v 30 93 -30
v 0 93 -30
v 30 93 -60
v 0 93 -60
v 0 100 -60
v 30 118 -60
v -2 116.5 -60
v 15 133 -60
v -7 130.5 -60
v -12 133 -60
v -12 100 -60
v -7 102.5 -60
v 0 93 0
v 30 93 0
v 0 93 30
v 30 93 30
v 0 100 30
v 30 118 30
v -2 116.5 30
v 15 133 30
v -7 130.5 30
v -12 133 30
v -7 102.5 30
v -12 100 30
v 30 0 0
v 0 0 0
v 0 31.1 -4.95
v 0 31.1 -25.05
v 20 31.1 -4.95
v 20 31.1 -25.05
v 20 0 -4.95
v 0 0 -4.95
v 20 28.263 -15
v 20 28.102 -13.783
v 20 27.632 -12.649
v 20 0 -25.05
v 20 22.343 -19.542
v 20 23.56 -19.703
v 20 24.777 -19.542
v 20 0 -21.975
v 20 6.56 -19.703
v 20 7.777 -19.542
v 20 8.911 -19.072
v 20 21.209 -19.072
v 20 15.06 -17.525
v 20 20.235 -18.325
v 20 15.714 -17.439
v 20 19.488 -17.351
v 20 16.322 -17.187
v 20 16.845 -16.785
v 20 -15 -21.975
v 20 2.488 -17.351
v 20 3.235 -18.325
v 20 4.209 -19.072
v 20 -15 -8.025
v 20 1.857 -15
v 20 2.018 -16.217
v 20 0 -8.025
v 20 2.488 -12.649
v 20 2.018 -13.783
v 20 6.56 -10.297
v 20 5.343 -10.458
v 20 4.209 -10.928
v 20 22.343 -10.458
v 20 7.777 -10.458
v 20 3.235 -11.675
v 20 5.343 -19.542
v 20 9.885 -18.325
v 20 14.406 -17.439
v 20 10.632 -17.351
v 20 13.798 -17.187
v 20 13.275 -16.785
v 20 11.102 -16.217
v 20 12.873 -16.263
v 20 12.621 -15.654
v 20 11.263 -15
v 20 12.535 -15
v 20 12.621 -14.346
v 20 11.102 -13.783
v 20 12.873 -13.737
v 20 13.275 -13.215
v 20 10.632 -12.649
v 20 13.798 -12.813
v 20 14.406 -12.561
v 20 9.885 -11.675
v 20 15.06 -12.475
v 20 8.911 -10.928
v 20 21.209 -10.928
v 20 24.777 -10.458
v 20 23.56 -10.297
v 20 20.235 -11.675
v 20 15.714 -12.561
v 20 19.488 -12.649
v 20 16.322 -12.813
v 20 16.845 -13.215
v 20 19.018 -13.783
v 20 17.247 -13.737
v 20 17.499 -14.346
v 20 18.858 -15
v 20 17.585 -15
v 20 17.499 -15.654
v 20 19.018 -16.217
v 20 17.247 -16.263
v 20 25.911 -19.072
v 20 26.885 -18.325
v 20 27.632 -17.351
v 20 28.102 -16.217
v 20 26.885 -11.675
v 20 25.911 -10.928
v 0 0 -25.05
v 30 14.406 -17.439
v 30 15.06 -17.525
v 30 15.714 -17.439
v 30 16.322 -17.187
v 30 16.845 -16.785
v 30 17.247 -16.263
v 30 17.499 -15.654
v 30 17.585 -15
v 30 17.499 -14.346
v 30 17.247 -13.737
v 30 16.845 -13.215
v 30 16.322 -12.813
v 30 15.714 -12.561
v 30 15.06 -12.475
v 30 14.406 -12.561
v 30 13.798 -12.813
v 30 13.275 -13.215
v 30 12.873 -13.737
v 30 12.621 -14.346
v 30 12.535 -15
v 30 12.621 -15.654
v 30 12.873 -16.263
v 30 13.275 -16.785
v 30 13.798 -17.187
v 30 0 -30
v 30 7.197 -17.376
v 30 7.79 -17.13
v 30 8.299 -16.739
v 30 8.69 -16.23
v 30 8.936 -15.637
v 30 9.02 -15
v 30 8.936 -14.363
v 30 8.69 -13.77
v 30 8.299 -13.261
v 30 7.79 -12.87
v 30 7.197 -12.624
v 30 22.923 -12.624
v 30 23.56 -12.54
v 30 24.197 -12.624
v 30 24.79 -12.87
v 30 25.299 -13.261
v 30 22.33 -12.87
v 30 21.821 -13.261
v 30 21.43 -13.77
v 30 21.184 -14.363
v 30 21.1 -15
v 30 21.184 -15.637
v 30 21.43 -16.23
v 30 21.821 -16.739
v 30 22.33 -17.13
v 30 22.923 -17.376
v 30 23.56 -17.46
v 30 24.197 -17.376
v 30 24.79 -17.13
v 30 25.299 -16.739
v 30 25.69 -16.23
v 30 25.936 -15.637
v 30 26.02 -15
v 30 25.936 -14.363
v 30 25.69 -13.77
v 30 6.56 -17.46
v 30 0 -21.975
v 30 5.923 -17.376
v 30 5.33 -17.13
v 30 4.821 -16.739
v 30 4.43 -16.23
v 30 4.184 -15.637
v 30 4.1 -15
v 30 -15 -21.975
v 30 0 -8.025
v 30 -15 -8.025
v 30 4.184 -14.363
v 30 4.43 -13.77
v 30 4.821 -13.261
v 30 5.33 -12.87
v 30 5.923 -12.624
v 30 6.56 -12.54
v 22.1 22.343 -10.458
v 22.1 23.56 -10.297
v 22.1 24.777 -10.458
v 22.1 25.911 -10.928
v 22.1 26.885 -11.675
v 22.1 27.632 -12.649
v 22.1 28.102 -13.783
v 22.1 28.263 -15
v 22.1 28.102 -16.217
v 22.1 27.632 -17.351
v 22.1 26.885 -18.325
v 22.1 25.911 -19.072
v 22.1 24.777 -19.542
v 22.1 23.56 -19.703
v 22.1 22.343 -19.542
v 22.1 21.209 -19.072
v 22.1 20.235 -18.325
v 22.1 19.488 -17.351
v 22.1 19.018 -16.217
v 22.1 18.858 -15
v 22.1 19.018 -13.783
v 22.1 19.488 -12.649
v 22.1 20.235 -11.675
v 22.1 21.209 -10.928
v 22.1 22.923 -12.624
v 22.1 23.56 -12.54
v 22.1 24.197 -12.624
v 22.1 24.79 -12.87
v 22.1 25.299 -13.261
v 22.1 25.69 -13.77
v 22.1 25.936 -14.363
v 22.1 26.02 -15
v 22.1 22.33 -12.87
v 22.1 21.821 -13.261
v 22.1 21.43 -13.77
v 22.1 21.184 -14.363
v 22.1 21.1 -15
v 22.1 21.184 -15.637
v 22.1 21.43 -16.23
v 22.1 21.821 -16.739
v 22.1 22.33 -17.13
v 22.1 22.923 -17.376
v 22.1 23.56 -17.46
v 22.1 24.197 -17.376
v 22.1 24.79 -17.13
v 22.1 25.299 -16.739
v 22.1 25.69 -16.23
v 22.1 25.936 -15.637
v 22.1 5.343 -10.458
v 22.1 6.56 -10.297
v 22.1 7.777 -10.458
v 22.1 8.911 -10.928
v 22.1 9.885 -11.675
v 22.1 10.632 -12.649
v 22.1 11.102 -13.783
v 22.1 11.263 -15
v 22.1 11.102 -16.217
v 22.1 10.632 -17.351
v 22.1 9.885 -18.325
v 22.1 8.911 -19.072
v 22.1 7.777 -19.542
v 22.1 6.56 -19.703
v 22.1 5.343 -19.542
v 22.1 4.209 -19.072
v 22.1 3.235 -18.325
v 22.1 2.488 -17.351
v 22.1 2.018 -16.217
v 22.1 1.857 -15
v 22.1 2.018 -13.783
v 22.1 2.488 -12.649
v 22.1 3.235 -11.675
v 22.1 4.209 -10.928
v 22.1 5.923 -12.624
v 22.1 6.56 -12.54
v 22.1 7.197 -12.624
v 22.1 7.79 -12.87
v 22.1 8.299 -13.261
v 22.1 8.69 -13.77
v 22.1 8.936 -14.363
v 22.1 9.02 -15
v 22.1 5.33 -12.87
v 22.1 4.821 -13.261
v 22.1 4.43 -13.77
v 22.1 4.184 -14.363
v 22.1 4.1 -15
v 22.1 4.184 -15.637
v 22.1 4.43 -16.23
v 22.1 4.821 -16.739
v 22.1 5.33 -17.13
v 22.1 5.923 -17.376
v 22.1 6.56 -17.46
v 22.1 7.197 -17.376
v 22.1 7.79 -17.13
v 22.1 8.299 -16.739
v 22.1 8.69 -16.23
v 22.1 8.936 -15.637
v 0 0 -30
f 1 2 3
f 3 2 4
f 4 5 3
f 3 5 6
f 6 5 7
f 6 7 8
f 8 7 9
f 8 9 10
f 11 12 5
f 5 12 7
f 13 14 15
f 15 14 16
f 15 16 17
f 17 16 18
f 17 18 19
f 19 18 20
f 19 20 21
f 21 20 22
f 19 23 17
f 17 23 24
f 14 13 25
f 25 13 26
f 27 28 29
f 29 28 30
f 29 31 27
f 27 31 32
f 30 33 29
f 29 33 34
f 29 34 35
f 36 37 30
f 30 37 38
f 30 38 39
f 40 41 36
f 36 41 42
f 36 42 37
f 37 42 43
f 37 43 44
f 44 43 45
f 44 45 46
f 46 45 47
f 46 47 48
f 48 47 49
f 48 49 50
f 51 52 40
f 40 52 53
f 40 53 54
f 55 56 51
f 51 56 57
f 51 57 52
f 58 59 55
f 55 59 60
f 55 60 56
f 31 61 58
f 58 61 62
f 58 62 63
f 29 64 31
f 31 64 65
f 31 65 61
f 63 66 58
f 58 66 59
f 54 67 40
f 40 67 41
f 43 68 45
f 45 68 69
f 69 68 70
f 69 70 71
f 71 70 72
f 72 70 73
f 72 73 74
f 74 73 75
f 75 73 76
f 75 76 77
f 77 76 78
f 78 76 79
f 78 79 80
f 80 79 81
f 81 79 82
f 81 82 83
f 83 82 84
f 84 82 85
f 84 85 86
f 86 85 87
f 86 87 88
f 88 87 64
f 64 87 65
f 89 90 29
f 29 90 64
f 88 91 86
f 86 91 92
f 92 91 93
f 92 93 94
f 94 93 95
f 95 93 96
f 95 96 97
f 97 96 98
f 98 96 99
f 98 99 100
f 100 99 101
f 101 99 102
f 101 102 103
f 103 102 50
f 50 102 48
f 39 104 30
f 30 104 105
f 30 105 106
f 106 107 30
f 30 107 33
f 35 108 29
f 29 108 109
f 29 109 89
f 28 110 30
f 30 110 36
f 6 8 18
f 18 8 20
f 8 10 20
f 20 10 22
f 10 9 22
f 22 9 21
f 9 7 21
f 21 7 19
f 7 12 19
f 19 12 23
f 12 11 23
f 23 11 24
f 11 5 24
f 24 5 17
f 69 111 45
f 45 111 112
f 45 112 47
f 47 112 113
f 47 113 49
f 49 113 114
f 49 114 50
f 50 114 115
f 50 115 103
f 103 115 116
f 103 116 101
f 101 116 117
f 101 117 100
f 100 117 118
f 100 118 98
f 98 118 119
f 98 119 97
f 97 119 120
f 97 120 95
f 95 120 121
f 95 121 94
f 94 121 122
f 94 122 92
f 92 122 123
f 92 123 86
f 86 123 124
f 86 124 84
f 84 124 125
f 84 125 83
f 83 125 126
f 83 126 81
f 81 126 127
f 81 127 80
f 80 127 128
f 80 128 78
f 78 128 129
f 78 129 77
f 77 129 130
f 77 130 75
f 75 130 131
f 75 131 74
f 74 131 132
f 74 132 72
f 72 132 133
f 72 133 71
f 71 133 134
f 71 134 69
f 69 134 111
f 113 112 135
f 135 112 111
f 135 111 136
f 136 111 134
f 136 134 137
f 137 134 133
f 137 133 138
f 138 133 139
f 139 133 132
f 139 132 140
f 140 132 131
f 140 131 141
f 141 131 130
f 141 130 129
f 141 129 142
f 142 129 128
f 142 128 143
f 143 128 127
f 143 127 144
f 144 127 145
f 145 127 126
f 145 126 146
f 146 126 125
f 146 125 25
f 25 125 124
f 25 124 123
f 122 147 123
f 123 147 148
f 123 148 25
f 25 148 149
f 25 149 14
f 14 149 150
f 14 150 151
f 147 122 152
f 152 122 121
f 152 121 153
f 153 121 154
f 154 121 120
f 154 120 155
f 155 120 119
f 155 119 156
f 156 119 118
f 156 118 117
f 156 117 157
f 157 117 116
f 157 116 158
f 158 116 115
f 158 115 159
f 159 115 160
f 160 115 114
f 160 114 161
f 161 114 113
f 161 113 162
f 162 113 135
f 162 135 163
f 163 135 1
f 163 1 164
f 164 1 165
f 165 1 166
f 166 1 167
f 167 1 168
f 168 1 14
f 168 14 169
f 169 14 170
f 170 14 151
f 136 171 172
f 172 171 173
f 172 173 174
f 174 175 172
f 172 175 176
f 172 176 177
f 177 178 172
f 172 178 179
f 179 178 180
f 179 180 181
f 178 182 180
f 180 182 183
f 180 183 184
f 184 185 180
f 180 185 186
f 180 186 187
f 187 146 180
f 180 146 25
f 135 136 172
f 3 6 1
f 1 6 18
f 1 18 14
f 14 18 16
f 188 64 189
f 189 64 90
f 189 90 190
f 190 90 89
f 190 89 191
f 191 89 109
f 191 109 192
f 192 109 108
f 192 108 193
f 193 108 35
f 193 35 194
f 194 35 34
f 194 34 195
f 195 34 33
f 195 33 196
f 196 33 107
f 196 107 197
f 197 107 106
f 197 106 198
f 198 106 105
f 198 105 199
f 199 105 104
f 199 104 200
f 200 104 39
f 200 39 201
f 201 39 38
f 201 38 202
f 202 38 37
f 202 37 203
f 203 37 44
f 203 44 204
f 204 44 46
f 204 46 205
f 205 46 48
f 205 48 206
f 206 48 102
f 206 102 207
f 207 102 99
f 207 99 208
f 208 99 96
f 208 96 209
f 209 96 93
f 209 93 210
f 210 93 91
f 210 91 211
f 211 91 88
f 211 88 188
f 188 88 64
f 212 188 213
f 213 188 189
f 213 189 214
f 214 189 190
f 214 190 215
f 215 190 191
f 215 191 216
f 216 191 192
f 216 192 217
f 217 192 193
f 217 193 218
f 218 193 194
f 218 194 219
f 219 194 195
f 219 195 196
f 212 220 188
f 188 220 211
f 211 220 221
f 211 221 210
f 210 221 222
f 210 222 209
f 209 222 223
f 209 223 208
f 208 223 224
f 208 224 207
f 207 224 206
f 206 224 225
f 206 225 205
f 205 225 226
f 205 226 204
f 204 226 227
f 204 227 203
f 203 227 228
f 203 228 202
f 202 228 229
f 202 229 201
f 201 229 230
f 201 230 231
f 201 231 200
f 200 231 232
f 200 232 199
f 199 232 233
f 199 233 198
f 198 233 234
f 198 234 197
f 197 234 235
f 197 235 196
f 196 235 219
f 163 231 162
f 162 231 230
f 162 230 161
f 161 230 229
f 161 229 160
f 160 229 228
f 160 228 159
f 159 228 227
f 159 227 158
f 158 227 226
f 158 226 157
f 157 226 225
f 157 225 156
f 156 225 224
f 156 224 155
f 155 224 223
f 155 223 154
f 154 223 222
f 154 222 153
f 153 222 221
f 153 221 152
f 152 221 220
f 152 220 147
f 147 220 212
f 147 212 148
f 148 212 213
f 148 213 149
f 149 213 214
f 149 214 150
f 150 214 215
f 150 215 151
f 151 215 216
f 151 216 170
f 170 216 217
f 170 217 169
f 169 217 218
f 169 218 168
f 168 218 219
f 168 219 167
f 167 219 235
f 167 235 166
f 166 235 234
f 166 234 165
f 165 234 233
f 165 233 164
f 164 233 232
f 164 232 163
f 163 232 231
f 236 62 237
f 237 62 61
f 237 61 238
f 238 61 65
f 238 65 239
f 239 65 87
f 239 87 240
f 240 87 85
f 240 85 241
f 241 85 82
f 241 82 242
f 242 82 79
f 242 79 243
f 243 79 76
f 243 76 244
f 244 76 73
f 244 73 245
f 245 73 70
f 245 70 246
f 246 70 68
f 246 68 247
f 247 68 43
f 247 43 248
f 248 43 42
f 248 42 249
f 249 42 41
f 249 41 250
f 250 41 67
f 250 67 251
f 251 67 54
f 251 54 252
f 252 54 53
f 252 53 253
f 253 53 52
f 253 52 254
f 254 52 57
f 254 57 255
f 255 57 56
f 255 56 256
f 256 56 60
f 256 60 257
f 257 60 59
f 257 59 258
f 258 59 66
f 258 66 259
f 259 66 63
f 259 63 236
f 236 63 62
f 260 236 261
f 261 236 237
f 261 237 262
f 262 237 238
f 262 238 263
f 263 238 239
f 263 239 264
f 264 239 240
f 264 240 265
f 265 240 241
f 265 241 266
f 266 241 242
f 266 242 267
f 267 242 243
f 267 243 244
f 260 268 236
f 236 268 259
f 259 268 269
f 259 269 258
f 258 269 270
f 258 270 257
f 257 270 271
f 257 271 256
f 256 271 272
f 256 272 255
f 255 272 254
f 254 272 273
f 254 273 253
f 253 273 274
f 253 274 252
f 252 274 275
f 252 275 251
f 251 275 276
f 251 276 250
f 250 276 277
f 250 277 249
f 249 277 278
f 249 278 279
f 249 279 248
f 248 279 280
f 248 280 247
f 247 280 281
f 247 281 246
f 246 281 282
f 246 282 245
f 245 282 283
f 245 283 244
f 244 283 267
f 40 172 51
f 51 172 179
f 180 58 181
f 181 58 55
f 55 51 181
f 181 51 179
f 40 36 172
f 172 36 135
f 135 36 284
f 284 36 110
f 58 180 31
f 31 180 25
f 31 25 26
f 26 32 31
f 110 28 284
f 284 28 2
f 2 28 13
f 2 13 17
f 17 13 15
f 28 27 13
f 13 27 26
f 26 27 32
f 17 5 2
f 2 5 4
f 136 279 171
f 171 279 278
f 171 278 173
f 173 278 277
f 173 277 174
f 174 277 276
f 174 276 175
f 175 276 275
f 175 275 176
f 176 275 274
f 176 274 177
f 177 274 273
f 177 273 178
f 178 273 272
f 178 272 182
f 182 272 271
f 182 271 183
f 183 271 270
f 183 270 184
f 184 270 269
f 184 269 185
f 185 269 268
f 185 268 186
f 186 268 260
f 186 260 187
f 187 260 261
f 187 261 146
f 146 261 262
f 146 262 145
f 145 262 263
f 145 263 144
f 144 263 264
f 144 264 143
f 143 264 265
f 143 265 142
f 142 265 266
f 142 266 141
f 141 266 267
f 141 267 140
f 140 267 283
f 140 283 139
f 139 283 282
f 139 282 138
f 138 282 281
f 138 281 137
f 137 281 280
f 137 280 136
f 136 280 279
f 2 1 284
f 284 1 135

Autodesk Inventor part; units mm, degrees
ref_plane "YZ Plane" through (0, 0, 0) normal (1, 0, 0) x (0, 1, 0)
ref_plane "XZ Plane" through (0, 0, 0) normal (0, 1, 0) x (-1, 0, 0)
sketch "Sketch1" plane through (0, 0, 0) normal (0, 0, 1) x (1, 0, 0)
  line L0 (0, 0) -> (25, 0)
  line L1 (25, 0) -> (25, 40)
  line L2 (25, 40) -> (0, 40)
  line L3 (0, 40) -> (0, 0)
  dimension "d1" = 25
  dimension "d2" = 40
  dimension "d3" = 25
extrude "Extrusion1" add sketch "Sketch1" against normal blind 30
sketch "Sketch2" plane through (25, 0, 0) normal (1, 0, 0) x (0, 0, -1)
  line L0 (0, 0) -> (30, 0) projected
  circle A0 centre (15, 6.56) radius 2.46
extrude "Extrusion2" cut sketch "Sketch2" against normal blind 30
sketch "Sketch3" plane through (0, 0, 0) normal (-1, 0, 0) x (0, 0, 1)
  line L0 (0, 0) -> (-30, 0) projected
  line L1 (-25.05, 0) -> (-4.95, 0)
  line L2 (-4.95, 0) -> (-4.95, 33.12)
  line L3 (-4.95, 33.12) -> (-25.05, 33.12)
  line L4 (-25.05, 33.12) -> (-25.05, 0)
  dimension "d11" = 20.1
extrude "Extrusion3" cut sketch "Sketch3" against normal blind 20
sketch "Sketch4" plane through (0, 0, 0) normal (0, -1, 0) x (1, 0, 0)
  line L0 (20, -4.95) -> (20, -25.05) projected
  line L1 (20, -15) -> (25, -15)
  line L2 (25, 0) -> (25, -30) projected
  line L3 (20, -8.025) -> (25, -8.025)
  line L4 (25, -8.025) -> (25, -21.975)
  line L5 (25, -21.975) -> (20, -21.975)
  line L6 (20, -21.975) -> (20, -8.025)
  line L7 (20, -8.025) -> (25, -21.975) construction
  line L8 (25, -8.025) -> (20, -21.975) construction
  line L9 (25, -12.54) -> (25, -17.46) projected
  point P0 (0, 0)
  point P1 (22.5, -15)
  dimension "d14" = 13.95
extrude "Extrusion4" add sketch "Sketch4" along normal blind 15
sketch "Sketch5" plane through (20, 0, 0) normal (-1, 0, 0) x (0, 0, 1)
  circle A0 centre (-15, 6.56) radius 2.46 projected
  circle A1 centre (-15, 6.56) radius 4.7025
  circle A2 centre (-15, 6.56) radius 2.46 projected
  circle A3 centre (-15, 6.56) radius 2.46
  point P0 (0, 0)
  dimension "d17" = 9.405
extrude "Extrusion5" cut sketch "Sketch5" against normal blind 2.1
sketch "Sketch6" plane through (25, 0, 0) normal (1, 0, 0) x (0, 0, -1)
  circle A0 centre (15, 6.56) radius 4.7025 projected
  line L0 (15, 6.56) -> (15, 23.56)
  circle A1 centre (15, 23.56) radius 2.46
  point P0 (0, 0)
  dimension "d20" = 17
  dimension "d21" = 4.92
extrude "Extrusion6" cut sketch "Sketch6" against normal blind 10 contours A1
sketch "Sketch7" plane through (20, 0, 0) normal (-1, 0, 0) x (0, 0, 1)
  circle A0 centre (-15, 23.56) radius 2.46 projected
  circle A1 centre (-15, 23.56) radius 4.7025
  point P0 (0, 0)
  dimension "d24" = 9.405
extrude "Extrusion7" cut sketch "Sketch7" against normal blind 2.1
sketch "Sketch9" plane through (25, 0, 0) normal (1, 0, 0) x (0, 0, -1)
  circle A0 centre (15, 6.56) radius 2.46 projected
  circle A1 centre (15, 6.56) radius 2.46
  circle A2 centre (15, 23.56) radius 2.46 projected
  circle A3 centre (15, 23.56) radius 2.46
  line L0 (30, 40) -> (30, 0) projected
  line L1 (30, 0) -> (30, 40)
  line L2 (30, 40) -> (0, 40)
  line L3 (0, 40) -> (0, 0)
  line L4 (0, 0) -> (8.025, 0) projected
  line L5 (21.975, 0) -> (21.975, -15)
  line L6 (21.975, -15) -> (8.025, -15)
  line L7 (8.025, -15) -> (8.025, 0)
  line L8 (0, 0) -> (8.025, 0)
  line L9 (21.975, 0) -> (30, 0)
extrude "Extrusion8" add sketch "Sketch9" along normal blind 5
sketch "Sketch10" plane through (0, 40, 0) normal (0, 1, 0) x (1, 0, 0)
  line L0 (0, 30) -> (30, 30) projected
  line L1 (30, 0) -> (0, 0) projected
  line L2 (0, 30) -> (30, 30)
  line L3 (30, 30) -> (30, 0)
  line L4 (30, 0) -> (0, 0)
  line L5 (0, 0) -> (0, 30)
extrude "Extrusion9" add sketch "Sketch10" along normal blind 30
sketch "Sketch12" plane through (30, 0, 0) normal (1, 0, 0) x (0, 0, -1)
  circle A0 centre (15, 6.56) radius 2.46 projected
  line L0 (15, 6.56) -> (15, 15.06)
  circle A1 centre (15, 15.06) radius 2.525
  point P0 (0, 0)
  dimension "d31" = 8.5
  dimension "d33" = 5.05
extrude "Extrusion10" cut sketch "Sketch12" against normal blind 30 contours A1
sketch "Sketch14" plane through (0, 0, 0) normal (0, 0, 1) x (1, 0, 0)
  line L0 (30, 70) -> (0, 70) projected
  line L1 (0, 70) -> (0, 85)
  line L2 (30, 0) -> (30, 70) projected
  line L3 (30, 118) -> (30, 70)
  line L4 (30, 105) -> (30, 100)
  line L5 (-12, 133) -> (15, 133)
  line L6 (-7, 130.5) -> (-12, 133)
  line L7 (-7, 130.5) -> (-2, 116.5)
  line L8 (-7, 102.5) -> (-12, 100)
  line L9 (-7, 102.5) -> (-2, 116.5)
  line L10 (30, 118) -> (15, 133)
  line L11 (0, 100) -> (-12, 100)
  line L12 (0, 100) -> (0, 85)
  point P0 (0, 0)
  dimension "d79" = 12
extrude "Extrusion12" add sketch "Sketch14" against normal blind 30
sketch "Sketch15" plane through (0, 0, -25.05) normal (-1, 0, 0) x (0, 0, 1)
  line L0 (0, 33.12) -> (20.1, 33.12) projected
  line L1 (20.1, 33.12) -> (20.1, 0) projected
  line L2 (0, 33.12) -> (20.1, 33.12)
  line L3 (20.1, 33.12) -> (20.1, 31.1)
  line L4 (20.1, 31.1) -> (0, 31.1)
  line L5 (0, 31.1) -> (0, 33.12)
  point P0 (25.05, 0)
  dimension "d57" = 2.02
extrude "Extrusion13" add sketch "Sketch15" against normal blind 20
sketch "Sketch22" plane through (0, 0, 0) normal (0, 0, 1) x (1, 0, 0)
  line L0 (0, 100) -> (-12, 100) projected
  line L1 (0, 100) -> (-12, 100)
  line L2 (-12, 100) -> (-7, 102.5) projected
  line L3 (-12, 100) -> (-7, 102.5)
  line L4 (-7, 102.5) -> (-2, 116.5) projected
  line L5 (-7, 102.5) -> (-2, 116.5)
  line L6 (-2, 116.5) -> (-7, 130.5) projected
  line L7 (-2, 116.5) -> (-7, 130.5)
  line L8 (-7, 130.5) -> (-12, 133) projected
  line L9 (-7, 130.5) -> (-12, 133)
  line L10 (-12, 133) -> (15, 133) projected
  line L11 (-12, 133) -> (15, 133)
  line L12 (15, 133) -> (30, 118) projected
  line L13 (15, 133) -> (30, 118)
  line L14 (30, 118) -> (30, 93)
  line L15 (30, 0) -> (30, 118) projected
  line L16 (30, 93) -> (0, 93)
  line L17 (0, 100) -> (0, 0) projected
  line L18 (0, 93) -> (0, 100)
  dimension "d80" = 25
extrude "Extrusion14" add sketch "Sketch22" along normal blind 30
ref_plane "Work Plane1" through (0, 0, -15) normal (0, 0, 1) x (1, 0, 0)
mirror "Mirror1" about plane through (0, 0, -15) normal (0, 0, 1) of "Extrusion14"
properties part number "rec_b_28mm_x_90mm"
